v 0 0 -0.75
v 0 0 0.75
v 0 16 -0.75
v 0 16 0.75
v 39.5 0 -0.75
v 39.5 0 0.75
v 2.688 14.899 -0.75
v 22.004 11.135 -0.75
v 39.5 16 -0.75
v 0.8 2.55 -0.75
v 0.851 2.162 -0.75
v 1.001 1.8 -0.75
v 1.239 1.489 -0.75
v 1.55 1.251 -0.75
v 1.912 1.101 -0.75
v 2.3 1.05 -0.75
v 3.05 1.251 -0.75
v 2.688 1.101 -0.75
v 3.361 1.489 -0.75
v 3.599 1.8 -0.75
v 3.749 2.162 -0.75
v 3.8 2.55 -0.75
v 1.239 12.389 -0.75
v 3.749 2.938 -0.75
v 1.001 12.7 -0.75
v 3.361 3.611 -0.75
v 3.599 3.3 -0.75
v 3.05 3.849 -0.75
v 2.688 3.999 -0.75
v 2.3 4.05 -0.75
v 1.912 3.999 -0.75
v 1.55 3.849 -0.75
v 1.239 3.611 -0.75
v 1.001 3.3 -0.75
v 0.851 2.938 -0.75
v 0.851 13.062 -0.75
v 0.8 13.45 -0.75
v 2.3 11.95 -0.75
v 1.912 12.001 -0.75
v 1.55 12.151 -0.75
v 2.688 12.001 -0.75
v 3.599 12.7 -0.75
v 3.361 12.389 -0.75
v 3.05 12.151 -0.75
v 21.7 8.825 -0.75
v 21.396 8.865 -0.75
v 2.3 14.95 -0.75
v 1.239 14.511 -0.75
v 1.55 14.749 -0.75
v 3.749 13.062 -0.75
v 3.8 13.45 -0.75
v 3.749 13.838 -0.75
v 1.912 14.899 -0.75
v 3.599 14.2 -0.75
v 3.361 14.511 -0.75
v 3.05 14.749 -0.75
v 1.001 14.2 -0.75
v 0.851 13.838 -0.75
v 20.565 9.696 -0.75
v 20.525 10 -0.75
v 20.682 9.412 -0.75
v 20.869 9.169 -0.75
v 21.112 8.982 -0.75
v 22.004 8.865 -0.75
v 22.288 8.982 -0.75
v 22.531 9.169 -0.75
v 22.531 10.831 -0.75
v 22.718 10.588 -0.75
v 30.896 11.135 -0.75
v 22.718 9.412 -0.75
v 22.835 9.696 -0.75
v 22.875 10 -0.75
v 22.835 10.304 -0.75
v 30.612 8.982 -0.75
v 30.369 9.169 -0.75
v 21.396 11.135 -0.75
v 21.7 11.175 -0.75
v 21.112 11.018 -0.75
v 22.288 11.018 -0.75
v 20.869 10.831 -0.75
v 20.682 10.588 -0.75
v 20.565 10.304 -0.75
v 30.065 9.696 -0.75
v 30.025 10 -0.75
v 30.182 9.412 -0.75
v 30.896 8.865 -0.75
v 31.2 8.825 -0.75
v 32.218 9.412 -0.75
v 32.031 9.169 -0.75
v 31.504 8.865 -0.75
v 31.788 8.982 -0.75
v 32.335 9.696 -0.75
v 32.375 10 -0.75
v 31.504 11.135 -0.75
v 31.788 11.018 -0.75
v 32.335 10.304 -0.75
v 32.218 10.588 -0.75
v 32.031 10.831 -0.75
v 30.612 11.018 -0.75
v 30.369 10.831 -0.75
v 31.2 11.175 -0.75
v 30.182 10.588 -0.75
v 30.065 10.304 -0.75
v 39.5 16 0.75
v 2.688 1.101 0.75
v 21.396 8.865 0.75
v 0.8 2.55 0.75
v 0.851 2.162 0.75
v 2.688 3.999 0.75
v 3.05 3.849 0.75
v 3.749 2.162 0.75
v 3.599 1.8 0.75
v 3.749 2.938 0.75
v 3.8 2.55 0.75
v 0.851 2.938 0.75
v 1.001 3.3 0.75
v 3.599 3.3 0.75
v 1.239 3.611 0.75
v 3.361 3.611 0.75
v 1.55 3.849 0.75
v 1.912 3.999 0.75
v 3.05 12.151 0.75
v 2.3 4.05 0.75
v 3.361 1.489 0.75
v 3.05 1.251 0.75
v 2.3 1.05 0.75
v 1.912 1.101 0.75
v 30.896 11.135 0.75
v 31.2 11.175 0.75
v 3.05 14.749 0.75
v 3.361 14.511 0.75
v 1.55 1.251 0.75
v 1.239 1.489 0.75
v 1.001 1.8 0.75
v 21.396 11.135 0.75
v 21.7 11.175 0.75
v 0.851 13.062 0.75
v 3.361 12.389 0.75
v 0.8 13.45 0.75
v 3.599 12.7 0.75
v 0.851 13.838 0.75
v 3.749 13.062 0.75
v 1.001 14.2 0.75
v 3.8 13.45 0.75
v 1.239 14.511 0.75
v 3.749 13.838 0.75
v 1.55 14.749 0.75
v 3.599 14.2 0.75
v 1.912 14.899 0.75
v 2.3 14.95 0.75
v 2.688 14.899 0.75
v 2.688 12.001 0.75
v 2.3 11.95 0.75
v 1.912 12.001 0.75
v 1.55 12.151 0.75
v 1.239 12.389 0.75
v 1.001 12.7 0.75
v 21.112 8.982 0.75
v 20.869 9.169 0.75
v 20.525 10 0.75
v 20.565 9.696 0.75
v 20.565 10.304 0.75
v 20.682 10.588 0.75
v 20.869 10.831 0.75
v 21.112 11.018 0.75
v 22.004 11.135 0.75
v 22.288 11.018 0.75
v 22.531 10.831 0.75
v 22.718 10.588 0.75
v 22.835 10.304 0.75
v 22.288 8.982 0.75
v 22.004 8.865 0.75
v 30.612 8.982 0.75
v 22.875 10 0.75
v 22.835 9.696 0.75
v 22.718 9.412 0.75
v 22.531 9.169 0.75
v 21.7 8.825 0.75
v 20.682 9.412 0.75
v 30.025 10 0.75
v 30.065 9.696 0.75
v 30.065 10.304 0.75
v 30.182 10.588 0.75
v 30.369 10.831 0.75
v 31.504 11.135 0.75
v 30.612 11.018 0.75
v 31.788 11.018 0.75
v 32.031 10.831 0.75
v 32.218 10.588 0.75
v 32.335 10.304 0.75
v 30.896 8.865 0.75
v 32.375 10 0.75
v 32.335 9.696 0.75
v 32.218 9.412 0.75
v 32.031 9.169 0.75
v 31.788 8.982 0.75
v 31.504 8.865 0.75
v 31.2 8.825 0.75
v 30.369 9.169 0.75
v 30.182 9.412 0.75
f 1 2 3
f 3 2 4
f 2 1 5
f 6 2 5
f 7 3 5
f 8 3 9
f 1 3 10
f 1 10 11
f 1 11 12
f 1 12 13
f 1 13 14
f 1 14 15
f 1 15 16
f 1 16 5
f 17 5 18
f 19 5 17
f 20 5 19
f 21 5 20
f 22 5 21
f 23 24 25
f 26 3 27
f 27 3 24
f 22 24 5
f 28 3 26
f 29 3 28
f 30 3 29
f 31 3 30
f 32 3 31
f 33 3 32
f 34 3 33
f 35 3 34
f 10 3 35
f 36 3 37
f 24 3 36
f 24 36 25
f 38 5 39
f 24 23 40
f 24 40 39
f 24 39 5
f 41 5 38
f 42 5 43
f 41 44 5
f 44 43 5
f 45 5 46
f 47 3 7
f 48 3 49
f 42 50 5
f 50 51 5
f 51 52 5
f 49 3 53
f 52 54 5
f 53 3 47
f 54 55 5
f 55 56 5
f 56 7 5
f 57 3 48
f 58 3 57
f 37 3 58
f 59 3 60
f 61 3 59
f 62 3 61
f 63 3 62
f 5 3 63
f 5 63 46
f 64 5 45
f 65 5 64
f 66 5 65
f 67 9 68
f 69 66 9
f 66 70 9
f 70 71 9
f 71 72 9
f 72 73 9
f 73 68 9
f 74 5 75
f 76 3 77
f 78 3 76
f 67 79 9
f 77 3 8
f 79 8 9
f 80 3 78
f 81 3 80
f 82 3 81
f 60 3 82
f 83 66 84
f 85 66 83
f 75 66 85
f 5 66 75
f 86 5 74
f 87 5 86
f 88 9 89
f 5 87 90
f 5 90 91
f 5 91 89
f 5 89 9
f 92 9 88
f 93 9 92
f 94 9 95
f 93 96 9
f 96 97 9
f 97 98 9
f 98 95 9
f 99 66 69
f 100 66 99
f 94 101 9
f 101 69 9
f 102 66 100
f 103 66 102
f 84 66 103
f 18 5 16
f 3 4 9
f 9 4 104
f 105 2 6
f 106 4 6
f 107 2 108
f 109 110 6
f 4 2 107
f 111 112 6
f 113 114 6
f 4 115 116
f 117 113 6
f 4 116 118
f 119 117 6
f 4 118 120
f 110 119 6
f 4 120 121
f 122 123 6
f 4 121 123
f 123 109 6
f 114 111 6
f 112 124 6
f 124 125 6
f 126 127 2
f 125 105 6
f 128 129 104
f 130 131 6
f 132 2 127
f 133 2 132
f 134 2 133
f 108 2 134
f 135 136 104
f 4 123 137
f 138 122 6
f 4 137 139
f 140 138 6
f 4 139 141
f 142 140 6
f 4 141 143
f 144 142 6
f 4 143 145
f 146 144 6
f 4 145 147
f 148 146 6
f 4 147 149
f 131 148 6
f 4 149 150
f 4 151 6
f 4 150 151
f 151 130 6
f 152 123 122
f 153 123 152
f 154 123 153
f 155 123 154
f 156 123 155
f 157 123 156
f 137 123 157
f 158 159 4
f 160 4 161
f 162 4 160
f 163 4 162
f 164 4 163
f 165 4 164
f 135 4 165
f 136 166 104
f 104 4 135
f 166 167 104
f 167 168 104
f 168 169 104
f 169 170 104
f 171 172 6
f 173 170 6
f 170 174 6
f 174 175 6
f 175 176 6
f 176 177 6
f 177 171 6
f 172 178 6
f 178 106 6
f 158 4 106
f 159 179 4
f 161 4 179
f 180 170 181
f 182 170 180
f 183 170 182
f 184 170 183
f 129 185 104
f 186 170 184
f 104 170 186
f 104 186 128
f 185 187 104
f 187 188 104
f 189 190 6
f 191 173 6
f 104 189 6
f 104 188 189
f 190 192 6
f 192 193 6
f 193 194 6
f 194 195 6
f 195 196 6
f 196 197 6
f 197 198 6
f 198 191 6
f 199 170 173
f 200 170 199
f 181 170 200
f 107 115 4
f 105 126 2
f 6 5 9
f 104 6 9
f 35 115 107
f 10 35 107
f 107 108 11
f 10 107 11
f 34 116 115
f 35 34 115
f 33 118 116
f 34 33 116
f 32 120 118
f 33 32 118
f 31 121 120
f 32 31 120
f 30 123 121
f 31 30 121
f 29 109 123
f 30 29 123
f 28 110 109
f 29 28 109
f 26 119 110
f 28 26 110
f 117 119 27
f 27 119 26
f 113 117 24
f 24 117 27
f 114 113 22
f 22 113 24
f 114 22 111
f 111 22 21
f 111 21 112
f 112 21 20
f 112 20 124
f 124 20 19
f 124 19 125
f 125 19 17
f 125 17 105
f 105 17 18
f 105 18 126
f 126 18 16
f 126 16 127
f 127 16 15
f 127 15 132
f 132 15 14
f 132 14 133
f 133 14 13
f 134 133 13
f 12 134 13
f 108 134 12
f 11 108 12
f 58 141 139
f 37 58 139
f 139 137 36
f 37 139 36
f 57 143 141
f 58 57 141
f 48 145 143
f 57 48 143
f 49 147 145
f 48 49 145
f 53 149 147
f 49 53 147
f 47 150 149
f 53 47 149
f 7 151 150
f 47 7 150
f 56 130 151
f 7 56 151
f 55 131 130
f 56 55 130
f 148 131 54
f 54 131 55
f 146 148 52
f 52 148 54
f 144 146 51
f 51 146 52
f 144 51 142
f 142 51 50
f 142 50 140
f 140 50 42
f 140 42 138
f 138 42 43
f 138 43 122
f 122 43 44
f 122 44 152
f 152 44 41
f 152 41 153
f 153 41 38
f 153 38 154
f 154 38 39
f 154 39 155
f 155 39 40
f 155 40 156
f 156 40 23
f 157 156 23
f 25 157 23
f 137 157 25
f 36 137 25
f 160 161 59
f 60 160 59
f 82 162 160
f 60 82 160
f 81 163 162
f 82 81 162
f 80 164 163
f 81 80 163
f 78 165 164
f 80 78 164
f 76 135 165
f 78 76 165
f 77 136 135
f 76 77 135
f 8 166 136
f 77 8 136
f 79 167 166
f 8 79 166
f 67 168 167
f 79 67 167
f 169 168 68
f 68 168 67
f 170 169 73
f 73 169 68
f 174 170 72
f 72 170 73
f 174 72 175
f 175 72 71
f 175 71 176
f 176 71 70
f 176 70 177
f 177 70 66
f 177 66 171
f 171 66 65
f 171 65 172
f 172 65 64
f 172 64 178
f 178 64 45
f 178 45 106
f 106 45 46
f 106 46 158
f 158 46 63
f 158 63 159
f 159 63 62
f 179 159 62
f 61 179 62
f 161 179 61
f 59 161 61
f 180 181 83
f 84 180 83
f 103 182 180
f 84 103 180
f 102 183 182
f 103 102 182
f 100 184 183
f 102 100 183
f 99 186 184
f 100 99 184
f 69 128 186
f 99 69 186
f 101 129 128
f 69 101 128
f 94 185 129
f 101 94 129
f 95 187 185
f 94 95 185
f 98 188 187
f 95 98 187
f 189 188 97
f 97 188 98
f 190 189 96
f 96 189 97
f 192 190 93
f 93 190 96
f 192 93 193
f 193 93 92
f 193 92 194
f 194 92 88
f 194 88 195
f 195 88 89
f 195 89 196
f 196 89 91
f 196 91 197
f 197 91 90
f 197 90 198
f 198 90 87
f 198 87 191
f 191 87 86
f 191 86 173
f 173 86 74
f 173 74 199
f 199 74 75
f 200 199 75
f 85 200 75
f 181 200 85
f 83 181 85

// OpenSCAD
thickness = 1.5;

module board(posts) {
	union(){
		difference(){
			translate([0,0,-thickness/2])	
				cube([39.5,16,thickness]);
			translate([2.3,2.55,0])
				cylinder(r=1.5, h=thickness+1, center=true, $fn=24);
			translate([2.3,13.45,0])
				cylinder(r=1.5, h=thickness+1, center=true, $fn=24);
			if(!posts){
				translate([16.6,7.5,thickness/2])
					endstop(posts);
			}
		}
		if(posts){
			translate([16.6,7.5,thickness/2])
				endstop(posts);
		}
	}
}

module endstop(posts) {
	color("black",.3)
		%cube([19.8,10.2,6.4]);
	if(posts){
		translate([5.1,2.5,0])
			pin();
		translate([14.6,2.5,0])
			pin();
	} else {
		translate([5.1,2.5,0])
			cylinder(r=1.175, h=thickness+5, center=true, $fn=24);
		translate([14.6,2.5,0])
			cylinder(r=1.175, h=thickness+5, center=true, $fn=24);
	}
}

module pin(){
	difference(){
		union(){
			cylinder(r=1.175, h=6.4, center=false, $fn=24);
			translate([0,0,6.4])
				cylinder(r1=1.175,r2=1.3, h=0.6, center=false, $fn=24);
			translate([0,0,7])
				cylinder(r1=1.3,r2=1, h=1, center=false, $fn=24);
		}
		hull(){
			translate([0,0,3]) rotate([90,0,0])
				cylinder(r=0.25, h=5, center=true, $fn=24);
			translate([0,0,10]) rotate([90,0,0])
				cylinder(r=0.25, h=5, center=true, $fn=24);
		}
	}
}

board(false);
